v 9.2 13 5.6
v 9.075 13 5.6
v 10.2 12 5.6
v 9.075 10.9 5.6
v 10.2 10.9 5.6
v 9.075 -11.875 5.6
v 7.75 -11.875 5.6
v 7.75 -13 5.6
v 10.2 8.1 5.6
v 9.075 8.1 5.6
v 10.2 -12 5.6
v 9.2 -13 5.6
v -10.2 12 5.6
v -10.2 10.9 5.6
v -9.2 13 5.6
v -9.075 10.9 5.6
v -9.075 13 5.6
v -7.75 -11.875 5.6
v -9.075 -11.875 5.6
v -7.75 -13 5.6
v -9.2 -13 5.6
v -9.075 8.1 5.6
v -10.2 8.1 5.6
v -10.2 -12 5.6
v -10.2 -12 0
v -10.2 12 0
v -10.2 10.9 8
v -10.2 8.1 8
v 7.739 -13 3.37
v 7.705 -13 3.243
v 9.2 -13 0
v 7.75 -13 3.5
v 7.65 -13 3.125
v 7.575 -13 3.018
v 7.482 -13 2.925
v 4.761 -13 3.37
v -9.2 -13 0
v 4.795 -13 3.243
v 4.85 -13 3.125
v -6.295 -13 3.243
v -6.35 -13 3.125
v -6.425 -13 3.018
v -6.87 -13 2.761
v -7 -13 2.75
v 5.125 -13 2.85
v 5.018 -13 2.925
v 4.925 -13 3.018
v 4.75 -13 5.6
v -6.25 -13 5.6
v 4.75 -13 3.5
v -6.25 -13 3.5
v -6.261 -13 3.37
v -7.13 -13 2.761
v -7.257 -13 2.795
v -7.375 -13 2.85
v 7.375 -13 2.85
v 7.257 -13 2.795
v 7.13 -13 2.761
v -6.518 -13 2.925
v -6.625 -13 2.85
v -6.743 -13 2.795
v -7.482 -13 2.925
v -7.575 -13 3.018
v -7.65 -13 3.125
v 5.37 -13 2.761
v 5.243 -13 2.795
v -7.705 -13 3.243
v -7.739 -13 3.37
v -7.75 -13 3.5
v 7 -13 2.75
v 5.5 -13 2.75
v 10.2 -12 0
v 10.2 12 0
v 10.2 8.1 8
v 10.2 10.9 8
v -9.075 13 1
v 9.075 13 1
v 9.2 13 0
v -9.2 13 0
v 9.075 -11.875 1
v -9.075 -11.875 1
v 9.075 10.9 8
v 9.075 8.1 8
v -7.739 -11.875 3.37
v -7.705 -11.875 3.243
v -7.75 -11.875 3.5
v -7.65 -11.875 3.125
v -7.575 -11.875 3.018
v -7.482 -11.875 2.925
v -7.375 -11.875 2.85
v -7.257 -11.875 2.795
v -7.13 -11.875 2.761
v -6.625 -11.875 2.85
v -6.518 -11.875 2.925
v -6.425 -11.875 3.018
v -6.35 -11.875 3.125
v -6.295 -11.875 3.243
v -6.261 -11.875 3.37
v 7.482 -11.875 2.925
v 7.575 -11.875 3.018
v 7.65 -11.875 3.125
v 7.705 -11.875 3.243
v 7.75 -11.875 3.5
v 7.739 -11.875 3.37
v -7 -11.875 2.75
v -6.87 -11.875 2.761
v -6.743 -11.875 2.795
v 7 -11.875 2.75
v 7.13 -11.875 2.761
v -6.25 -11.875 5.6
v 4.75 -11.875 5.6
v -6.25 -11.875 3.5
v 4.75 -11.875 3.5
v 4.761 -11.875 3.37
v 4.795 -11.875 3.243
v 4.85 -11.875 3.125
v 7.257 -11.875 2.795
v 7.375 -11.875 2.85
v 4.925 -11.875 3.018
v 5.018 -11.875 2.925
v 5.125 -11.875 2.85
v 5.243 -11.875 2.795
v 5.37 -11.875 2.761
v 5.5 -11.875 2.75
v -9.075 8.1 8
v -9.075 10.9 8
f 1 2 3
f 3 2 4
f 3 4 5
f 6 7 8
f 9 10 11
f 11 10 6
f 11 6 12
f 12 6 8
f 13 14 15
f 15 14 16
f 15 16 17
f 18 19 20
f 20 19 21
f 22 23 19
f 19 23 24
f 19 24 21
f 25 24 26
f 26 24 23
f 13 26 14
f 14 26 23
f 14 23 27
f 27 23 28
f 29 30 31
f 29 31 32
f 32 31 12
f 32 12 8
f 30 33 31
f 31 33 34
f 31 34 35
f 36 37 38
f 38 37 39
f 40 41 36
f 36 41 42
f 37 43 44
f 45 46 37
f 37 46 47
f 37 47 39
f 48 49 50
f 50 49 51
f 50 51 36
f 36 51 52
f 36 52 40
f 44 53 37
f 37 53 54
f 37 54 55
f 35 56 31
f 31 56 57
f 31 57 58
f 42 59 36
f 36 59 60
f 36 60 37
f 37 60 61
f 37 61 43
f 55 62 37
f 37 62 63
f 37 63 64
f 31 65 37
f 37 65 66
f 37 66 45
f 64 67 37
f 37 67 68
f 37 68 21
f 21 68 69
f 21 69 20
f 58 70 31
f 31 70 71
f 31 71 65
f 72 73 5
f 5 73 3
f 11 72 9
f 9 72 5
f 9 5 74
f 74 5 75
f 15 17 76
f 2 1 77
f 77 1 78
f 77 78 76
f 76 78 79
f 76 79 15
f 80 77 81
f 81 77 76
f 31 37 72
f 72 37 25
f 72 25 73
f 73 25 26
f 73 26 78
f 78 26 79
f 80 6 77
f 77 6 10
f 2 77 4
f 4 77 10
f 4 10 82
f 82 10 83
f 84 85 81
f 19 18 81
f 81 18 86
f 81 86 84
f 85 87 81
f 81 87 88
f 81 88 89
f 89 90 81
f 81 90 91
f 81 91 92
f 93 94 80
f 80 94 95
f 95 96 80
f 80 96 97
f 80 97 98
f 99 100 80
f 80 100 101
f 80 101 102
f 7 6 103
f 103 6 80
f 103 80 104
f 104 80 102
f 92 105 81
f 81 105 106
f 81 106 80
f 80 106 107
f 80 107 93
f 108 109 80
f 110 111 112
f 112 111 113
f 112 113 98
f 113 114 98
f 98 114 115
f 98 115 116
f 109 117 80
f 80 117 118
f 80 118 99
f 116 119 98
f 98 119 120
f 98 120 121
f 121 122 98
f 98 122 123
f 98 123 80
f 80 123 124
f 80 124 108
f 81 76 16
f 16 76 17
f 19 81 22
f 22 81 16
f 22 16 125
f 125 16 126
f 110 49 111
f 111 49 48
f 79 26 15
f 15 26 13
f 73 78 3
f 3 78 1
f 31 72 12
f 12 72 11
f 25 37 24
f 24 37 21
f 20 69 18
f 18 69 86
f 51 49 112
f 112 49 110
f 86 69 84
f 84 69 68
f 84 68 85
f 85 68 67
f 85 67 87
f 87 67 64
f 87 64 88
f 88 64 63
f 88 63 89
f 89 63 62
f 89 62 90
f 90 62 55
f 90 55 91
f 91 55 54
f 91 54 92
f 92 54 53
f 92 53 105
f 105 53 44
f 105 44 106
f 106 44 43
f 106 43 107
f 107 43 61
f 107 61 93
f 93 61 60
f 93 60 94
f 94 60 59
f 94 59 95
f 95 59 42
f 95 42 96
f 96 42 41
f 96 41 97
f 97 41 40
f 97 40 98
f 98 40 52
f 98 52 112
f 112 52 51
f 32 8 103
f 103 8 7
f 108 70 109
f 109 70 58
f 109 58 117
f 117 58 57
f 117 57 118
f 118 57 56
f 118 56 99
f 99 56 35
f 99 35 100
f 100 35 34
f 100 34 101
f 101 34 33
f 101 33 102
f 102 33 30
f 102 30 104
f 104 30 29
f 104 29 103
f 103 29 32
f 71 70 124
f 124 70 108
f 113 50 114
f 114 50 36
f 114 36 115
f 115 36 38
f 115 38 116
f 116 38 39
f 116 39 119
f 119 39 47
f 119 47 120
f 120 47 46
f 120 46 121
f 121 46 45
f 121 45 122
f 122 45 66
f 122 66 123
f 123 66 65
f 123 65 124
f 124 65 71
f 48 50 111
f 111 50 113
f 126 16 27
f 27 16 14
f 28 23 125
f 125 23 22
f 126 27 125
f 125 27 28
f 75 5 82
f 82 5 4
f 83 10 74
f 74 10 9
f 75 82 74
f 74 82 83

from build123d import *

# Parameters (mm, degrees)
SKETCH11_W          = 20.4
SKETCH11_H          = 26
BOSS_EXTRUDE5_DEPTH = 1
BOSS_EXTRUDE6_DEPTH = 4.6
CHAMFER2_SIZE       = 1
CUT_EXTRUDE1_REACH  = 30.485
SKETCH14_W          = 1.125
SKETCH14_H          = 2.8
BOSS_EXTRUDE7_DEPTH = 2.4


with BuildPart() as part:
    # Sketch11 → Boss-Extrude5 (new body)
    with BuildSketch(Plane.XY):
        Rectangle(SKETCH11_W, SKETCH11_H)
    extrude(amount=BOSS_EXTRUDE5_DEPTH)

    # Sketch12 → Boss-Extrude6 (add)
    with BuildSketch(Plane.XY.offset(1)):
        Polygon((-10.2, 13), (-10.2, -13), (10.2, -13), (10.2, 13), (9.075, 13), (9.075, -11.875), (-9.075, -11.875), (-9.075, 13), align=None)
    extrude(amount=BOSS_EXTRUDE6_DEPTH)

    # Chamfer2
    chamfer2_edges = [part.edges().sort_by_distance(p)[0] for p in [
        (-10.2, 13, 2.8),
        (10.2, 13, 2.8),
        (10.2, -13, 2.8),
        (-10.2, -13, 2.8),
    ]]
    chamfer(chamfer2_edges, length=CHAMFER2_SIZE)

    # Sketch13 → Cut-Extrude1 (cut, up to next)
    with BuildSketch(Plane.XZ.offset(13), mode=Mode.PRIVATE) as cut_extrude1_sk1:
        with BuildLine():
            Line((-7.75, 5.6), (-6.25, 5.6))
            Line((-6.25, 5.6), (-6.25, 3.5))
            ThreePointArc((-6.25, 3.5), (-7, 2.75), (-7.75, 3.5))
            Line((-7.75, 3.5), (-7.75, 5.6))
        make_face()
    cut_extrude1_tool1 = extrude(cut_extrude1_sk1.sketch, amount=-CUT_EXTRUDE1_REACH, mode=Mode.PRIVATE) & part.part
    # Sketch13 → Cut-Extrude1 (cut, up to next)
    with BuildSketch(Plane.XZ.offset(13), mode=Mode.PRIVATE) as cut_extrude1_sk2:
        with BuildLine():
            Line((7.75, 5.6), (4.75, 5.6))
            Line((4.75, 5.6), (4.75, 3.5))
            ThreePointArc((4.75, 3.5), (4.969669914, 2.969669914), (5.5, 2.75))
            Line((5.5, 2.75), (7, 2.75))
            ThreePointArc((7, 2.75), (7.530330086, 2.969669914), (7.75, 3.5))
            Line((7.75, 3.5), (7.75, 5.6))
        make_face()
    cut_extrude1_tool2 = extrude(cut_extrude1_sk2.sketch, amount=-CUT_EXTRUDE1_REACH, mode=Mode.PRIVATE) & part.part
    add(cut_extrude1_tool1.solids().sort_by_distance((-7, -13, 4.250265))[0], mode=Mode.SUBTRACT)
    add(cut_extrude1_tool2.solids().sort_by_distance((6.25, -13, 4.211539))[0], mode=Mode.SUBTRACT)

    # Sketch14 → Boss-Extrude7 (add)
    with BuildSketch(Plane.XY.offset(5.6)):
        with Locations((-9.6375, 9.5)):
            Rectangle(SKETCH14_W, SKETCH14_H)
        with Locations((9.6375, 9.5)):
            Rectangle(SKETCH14_W, SKETCH14_H)
    extrude(amount=BOSS_EXTRUDE7_DEPTH)


solid = part.part
